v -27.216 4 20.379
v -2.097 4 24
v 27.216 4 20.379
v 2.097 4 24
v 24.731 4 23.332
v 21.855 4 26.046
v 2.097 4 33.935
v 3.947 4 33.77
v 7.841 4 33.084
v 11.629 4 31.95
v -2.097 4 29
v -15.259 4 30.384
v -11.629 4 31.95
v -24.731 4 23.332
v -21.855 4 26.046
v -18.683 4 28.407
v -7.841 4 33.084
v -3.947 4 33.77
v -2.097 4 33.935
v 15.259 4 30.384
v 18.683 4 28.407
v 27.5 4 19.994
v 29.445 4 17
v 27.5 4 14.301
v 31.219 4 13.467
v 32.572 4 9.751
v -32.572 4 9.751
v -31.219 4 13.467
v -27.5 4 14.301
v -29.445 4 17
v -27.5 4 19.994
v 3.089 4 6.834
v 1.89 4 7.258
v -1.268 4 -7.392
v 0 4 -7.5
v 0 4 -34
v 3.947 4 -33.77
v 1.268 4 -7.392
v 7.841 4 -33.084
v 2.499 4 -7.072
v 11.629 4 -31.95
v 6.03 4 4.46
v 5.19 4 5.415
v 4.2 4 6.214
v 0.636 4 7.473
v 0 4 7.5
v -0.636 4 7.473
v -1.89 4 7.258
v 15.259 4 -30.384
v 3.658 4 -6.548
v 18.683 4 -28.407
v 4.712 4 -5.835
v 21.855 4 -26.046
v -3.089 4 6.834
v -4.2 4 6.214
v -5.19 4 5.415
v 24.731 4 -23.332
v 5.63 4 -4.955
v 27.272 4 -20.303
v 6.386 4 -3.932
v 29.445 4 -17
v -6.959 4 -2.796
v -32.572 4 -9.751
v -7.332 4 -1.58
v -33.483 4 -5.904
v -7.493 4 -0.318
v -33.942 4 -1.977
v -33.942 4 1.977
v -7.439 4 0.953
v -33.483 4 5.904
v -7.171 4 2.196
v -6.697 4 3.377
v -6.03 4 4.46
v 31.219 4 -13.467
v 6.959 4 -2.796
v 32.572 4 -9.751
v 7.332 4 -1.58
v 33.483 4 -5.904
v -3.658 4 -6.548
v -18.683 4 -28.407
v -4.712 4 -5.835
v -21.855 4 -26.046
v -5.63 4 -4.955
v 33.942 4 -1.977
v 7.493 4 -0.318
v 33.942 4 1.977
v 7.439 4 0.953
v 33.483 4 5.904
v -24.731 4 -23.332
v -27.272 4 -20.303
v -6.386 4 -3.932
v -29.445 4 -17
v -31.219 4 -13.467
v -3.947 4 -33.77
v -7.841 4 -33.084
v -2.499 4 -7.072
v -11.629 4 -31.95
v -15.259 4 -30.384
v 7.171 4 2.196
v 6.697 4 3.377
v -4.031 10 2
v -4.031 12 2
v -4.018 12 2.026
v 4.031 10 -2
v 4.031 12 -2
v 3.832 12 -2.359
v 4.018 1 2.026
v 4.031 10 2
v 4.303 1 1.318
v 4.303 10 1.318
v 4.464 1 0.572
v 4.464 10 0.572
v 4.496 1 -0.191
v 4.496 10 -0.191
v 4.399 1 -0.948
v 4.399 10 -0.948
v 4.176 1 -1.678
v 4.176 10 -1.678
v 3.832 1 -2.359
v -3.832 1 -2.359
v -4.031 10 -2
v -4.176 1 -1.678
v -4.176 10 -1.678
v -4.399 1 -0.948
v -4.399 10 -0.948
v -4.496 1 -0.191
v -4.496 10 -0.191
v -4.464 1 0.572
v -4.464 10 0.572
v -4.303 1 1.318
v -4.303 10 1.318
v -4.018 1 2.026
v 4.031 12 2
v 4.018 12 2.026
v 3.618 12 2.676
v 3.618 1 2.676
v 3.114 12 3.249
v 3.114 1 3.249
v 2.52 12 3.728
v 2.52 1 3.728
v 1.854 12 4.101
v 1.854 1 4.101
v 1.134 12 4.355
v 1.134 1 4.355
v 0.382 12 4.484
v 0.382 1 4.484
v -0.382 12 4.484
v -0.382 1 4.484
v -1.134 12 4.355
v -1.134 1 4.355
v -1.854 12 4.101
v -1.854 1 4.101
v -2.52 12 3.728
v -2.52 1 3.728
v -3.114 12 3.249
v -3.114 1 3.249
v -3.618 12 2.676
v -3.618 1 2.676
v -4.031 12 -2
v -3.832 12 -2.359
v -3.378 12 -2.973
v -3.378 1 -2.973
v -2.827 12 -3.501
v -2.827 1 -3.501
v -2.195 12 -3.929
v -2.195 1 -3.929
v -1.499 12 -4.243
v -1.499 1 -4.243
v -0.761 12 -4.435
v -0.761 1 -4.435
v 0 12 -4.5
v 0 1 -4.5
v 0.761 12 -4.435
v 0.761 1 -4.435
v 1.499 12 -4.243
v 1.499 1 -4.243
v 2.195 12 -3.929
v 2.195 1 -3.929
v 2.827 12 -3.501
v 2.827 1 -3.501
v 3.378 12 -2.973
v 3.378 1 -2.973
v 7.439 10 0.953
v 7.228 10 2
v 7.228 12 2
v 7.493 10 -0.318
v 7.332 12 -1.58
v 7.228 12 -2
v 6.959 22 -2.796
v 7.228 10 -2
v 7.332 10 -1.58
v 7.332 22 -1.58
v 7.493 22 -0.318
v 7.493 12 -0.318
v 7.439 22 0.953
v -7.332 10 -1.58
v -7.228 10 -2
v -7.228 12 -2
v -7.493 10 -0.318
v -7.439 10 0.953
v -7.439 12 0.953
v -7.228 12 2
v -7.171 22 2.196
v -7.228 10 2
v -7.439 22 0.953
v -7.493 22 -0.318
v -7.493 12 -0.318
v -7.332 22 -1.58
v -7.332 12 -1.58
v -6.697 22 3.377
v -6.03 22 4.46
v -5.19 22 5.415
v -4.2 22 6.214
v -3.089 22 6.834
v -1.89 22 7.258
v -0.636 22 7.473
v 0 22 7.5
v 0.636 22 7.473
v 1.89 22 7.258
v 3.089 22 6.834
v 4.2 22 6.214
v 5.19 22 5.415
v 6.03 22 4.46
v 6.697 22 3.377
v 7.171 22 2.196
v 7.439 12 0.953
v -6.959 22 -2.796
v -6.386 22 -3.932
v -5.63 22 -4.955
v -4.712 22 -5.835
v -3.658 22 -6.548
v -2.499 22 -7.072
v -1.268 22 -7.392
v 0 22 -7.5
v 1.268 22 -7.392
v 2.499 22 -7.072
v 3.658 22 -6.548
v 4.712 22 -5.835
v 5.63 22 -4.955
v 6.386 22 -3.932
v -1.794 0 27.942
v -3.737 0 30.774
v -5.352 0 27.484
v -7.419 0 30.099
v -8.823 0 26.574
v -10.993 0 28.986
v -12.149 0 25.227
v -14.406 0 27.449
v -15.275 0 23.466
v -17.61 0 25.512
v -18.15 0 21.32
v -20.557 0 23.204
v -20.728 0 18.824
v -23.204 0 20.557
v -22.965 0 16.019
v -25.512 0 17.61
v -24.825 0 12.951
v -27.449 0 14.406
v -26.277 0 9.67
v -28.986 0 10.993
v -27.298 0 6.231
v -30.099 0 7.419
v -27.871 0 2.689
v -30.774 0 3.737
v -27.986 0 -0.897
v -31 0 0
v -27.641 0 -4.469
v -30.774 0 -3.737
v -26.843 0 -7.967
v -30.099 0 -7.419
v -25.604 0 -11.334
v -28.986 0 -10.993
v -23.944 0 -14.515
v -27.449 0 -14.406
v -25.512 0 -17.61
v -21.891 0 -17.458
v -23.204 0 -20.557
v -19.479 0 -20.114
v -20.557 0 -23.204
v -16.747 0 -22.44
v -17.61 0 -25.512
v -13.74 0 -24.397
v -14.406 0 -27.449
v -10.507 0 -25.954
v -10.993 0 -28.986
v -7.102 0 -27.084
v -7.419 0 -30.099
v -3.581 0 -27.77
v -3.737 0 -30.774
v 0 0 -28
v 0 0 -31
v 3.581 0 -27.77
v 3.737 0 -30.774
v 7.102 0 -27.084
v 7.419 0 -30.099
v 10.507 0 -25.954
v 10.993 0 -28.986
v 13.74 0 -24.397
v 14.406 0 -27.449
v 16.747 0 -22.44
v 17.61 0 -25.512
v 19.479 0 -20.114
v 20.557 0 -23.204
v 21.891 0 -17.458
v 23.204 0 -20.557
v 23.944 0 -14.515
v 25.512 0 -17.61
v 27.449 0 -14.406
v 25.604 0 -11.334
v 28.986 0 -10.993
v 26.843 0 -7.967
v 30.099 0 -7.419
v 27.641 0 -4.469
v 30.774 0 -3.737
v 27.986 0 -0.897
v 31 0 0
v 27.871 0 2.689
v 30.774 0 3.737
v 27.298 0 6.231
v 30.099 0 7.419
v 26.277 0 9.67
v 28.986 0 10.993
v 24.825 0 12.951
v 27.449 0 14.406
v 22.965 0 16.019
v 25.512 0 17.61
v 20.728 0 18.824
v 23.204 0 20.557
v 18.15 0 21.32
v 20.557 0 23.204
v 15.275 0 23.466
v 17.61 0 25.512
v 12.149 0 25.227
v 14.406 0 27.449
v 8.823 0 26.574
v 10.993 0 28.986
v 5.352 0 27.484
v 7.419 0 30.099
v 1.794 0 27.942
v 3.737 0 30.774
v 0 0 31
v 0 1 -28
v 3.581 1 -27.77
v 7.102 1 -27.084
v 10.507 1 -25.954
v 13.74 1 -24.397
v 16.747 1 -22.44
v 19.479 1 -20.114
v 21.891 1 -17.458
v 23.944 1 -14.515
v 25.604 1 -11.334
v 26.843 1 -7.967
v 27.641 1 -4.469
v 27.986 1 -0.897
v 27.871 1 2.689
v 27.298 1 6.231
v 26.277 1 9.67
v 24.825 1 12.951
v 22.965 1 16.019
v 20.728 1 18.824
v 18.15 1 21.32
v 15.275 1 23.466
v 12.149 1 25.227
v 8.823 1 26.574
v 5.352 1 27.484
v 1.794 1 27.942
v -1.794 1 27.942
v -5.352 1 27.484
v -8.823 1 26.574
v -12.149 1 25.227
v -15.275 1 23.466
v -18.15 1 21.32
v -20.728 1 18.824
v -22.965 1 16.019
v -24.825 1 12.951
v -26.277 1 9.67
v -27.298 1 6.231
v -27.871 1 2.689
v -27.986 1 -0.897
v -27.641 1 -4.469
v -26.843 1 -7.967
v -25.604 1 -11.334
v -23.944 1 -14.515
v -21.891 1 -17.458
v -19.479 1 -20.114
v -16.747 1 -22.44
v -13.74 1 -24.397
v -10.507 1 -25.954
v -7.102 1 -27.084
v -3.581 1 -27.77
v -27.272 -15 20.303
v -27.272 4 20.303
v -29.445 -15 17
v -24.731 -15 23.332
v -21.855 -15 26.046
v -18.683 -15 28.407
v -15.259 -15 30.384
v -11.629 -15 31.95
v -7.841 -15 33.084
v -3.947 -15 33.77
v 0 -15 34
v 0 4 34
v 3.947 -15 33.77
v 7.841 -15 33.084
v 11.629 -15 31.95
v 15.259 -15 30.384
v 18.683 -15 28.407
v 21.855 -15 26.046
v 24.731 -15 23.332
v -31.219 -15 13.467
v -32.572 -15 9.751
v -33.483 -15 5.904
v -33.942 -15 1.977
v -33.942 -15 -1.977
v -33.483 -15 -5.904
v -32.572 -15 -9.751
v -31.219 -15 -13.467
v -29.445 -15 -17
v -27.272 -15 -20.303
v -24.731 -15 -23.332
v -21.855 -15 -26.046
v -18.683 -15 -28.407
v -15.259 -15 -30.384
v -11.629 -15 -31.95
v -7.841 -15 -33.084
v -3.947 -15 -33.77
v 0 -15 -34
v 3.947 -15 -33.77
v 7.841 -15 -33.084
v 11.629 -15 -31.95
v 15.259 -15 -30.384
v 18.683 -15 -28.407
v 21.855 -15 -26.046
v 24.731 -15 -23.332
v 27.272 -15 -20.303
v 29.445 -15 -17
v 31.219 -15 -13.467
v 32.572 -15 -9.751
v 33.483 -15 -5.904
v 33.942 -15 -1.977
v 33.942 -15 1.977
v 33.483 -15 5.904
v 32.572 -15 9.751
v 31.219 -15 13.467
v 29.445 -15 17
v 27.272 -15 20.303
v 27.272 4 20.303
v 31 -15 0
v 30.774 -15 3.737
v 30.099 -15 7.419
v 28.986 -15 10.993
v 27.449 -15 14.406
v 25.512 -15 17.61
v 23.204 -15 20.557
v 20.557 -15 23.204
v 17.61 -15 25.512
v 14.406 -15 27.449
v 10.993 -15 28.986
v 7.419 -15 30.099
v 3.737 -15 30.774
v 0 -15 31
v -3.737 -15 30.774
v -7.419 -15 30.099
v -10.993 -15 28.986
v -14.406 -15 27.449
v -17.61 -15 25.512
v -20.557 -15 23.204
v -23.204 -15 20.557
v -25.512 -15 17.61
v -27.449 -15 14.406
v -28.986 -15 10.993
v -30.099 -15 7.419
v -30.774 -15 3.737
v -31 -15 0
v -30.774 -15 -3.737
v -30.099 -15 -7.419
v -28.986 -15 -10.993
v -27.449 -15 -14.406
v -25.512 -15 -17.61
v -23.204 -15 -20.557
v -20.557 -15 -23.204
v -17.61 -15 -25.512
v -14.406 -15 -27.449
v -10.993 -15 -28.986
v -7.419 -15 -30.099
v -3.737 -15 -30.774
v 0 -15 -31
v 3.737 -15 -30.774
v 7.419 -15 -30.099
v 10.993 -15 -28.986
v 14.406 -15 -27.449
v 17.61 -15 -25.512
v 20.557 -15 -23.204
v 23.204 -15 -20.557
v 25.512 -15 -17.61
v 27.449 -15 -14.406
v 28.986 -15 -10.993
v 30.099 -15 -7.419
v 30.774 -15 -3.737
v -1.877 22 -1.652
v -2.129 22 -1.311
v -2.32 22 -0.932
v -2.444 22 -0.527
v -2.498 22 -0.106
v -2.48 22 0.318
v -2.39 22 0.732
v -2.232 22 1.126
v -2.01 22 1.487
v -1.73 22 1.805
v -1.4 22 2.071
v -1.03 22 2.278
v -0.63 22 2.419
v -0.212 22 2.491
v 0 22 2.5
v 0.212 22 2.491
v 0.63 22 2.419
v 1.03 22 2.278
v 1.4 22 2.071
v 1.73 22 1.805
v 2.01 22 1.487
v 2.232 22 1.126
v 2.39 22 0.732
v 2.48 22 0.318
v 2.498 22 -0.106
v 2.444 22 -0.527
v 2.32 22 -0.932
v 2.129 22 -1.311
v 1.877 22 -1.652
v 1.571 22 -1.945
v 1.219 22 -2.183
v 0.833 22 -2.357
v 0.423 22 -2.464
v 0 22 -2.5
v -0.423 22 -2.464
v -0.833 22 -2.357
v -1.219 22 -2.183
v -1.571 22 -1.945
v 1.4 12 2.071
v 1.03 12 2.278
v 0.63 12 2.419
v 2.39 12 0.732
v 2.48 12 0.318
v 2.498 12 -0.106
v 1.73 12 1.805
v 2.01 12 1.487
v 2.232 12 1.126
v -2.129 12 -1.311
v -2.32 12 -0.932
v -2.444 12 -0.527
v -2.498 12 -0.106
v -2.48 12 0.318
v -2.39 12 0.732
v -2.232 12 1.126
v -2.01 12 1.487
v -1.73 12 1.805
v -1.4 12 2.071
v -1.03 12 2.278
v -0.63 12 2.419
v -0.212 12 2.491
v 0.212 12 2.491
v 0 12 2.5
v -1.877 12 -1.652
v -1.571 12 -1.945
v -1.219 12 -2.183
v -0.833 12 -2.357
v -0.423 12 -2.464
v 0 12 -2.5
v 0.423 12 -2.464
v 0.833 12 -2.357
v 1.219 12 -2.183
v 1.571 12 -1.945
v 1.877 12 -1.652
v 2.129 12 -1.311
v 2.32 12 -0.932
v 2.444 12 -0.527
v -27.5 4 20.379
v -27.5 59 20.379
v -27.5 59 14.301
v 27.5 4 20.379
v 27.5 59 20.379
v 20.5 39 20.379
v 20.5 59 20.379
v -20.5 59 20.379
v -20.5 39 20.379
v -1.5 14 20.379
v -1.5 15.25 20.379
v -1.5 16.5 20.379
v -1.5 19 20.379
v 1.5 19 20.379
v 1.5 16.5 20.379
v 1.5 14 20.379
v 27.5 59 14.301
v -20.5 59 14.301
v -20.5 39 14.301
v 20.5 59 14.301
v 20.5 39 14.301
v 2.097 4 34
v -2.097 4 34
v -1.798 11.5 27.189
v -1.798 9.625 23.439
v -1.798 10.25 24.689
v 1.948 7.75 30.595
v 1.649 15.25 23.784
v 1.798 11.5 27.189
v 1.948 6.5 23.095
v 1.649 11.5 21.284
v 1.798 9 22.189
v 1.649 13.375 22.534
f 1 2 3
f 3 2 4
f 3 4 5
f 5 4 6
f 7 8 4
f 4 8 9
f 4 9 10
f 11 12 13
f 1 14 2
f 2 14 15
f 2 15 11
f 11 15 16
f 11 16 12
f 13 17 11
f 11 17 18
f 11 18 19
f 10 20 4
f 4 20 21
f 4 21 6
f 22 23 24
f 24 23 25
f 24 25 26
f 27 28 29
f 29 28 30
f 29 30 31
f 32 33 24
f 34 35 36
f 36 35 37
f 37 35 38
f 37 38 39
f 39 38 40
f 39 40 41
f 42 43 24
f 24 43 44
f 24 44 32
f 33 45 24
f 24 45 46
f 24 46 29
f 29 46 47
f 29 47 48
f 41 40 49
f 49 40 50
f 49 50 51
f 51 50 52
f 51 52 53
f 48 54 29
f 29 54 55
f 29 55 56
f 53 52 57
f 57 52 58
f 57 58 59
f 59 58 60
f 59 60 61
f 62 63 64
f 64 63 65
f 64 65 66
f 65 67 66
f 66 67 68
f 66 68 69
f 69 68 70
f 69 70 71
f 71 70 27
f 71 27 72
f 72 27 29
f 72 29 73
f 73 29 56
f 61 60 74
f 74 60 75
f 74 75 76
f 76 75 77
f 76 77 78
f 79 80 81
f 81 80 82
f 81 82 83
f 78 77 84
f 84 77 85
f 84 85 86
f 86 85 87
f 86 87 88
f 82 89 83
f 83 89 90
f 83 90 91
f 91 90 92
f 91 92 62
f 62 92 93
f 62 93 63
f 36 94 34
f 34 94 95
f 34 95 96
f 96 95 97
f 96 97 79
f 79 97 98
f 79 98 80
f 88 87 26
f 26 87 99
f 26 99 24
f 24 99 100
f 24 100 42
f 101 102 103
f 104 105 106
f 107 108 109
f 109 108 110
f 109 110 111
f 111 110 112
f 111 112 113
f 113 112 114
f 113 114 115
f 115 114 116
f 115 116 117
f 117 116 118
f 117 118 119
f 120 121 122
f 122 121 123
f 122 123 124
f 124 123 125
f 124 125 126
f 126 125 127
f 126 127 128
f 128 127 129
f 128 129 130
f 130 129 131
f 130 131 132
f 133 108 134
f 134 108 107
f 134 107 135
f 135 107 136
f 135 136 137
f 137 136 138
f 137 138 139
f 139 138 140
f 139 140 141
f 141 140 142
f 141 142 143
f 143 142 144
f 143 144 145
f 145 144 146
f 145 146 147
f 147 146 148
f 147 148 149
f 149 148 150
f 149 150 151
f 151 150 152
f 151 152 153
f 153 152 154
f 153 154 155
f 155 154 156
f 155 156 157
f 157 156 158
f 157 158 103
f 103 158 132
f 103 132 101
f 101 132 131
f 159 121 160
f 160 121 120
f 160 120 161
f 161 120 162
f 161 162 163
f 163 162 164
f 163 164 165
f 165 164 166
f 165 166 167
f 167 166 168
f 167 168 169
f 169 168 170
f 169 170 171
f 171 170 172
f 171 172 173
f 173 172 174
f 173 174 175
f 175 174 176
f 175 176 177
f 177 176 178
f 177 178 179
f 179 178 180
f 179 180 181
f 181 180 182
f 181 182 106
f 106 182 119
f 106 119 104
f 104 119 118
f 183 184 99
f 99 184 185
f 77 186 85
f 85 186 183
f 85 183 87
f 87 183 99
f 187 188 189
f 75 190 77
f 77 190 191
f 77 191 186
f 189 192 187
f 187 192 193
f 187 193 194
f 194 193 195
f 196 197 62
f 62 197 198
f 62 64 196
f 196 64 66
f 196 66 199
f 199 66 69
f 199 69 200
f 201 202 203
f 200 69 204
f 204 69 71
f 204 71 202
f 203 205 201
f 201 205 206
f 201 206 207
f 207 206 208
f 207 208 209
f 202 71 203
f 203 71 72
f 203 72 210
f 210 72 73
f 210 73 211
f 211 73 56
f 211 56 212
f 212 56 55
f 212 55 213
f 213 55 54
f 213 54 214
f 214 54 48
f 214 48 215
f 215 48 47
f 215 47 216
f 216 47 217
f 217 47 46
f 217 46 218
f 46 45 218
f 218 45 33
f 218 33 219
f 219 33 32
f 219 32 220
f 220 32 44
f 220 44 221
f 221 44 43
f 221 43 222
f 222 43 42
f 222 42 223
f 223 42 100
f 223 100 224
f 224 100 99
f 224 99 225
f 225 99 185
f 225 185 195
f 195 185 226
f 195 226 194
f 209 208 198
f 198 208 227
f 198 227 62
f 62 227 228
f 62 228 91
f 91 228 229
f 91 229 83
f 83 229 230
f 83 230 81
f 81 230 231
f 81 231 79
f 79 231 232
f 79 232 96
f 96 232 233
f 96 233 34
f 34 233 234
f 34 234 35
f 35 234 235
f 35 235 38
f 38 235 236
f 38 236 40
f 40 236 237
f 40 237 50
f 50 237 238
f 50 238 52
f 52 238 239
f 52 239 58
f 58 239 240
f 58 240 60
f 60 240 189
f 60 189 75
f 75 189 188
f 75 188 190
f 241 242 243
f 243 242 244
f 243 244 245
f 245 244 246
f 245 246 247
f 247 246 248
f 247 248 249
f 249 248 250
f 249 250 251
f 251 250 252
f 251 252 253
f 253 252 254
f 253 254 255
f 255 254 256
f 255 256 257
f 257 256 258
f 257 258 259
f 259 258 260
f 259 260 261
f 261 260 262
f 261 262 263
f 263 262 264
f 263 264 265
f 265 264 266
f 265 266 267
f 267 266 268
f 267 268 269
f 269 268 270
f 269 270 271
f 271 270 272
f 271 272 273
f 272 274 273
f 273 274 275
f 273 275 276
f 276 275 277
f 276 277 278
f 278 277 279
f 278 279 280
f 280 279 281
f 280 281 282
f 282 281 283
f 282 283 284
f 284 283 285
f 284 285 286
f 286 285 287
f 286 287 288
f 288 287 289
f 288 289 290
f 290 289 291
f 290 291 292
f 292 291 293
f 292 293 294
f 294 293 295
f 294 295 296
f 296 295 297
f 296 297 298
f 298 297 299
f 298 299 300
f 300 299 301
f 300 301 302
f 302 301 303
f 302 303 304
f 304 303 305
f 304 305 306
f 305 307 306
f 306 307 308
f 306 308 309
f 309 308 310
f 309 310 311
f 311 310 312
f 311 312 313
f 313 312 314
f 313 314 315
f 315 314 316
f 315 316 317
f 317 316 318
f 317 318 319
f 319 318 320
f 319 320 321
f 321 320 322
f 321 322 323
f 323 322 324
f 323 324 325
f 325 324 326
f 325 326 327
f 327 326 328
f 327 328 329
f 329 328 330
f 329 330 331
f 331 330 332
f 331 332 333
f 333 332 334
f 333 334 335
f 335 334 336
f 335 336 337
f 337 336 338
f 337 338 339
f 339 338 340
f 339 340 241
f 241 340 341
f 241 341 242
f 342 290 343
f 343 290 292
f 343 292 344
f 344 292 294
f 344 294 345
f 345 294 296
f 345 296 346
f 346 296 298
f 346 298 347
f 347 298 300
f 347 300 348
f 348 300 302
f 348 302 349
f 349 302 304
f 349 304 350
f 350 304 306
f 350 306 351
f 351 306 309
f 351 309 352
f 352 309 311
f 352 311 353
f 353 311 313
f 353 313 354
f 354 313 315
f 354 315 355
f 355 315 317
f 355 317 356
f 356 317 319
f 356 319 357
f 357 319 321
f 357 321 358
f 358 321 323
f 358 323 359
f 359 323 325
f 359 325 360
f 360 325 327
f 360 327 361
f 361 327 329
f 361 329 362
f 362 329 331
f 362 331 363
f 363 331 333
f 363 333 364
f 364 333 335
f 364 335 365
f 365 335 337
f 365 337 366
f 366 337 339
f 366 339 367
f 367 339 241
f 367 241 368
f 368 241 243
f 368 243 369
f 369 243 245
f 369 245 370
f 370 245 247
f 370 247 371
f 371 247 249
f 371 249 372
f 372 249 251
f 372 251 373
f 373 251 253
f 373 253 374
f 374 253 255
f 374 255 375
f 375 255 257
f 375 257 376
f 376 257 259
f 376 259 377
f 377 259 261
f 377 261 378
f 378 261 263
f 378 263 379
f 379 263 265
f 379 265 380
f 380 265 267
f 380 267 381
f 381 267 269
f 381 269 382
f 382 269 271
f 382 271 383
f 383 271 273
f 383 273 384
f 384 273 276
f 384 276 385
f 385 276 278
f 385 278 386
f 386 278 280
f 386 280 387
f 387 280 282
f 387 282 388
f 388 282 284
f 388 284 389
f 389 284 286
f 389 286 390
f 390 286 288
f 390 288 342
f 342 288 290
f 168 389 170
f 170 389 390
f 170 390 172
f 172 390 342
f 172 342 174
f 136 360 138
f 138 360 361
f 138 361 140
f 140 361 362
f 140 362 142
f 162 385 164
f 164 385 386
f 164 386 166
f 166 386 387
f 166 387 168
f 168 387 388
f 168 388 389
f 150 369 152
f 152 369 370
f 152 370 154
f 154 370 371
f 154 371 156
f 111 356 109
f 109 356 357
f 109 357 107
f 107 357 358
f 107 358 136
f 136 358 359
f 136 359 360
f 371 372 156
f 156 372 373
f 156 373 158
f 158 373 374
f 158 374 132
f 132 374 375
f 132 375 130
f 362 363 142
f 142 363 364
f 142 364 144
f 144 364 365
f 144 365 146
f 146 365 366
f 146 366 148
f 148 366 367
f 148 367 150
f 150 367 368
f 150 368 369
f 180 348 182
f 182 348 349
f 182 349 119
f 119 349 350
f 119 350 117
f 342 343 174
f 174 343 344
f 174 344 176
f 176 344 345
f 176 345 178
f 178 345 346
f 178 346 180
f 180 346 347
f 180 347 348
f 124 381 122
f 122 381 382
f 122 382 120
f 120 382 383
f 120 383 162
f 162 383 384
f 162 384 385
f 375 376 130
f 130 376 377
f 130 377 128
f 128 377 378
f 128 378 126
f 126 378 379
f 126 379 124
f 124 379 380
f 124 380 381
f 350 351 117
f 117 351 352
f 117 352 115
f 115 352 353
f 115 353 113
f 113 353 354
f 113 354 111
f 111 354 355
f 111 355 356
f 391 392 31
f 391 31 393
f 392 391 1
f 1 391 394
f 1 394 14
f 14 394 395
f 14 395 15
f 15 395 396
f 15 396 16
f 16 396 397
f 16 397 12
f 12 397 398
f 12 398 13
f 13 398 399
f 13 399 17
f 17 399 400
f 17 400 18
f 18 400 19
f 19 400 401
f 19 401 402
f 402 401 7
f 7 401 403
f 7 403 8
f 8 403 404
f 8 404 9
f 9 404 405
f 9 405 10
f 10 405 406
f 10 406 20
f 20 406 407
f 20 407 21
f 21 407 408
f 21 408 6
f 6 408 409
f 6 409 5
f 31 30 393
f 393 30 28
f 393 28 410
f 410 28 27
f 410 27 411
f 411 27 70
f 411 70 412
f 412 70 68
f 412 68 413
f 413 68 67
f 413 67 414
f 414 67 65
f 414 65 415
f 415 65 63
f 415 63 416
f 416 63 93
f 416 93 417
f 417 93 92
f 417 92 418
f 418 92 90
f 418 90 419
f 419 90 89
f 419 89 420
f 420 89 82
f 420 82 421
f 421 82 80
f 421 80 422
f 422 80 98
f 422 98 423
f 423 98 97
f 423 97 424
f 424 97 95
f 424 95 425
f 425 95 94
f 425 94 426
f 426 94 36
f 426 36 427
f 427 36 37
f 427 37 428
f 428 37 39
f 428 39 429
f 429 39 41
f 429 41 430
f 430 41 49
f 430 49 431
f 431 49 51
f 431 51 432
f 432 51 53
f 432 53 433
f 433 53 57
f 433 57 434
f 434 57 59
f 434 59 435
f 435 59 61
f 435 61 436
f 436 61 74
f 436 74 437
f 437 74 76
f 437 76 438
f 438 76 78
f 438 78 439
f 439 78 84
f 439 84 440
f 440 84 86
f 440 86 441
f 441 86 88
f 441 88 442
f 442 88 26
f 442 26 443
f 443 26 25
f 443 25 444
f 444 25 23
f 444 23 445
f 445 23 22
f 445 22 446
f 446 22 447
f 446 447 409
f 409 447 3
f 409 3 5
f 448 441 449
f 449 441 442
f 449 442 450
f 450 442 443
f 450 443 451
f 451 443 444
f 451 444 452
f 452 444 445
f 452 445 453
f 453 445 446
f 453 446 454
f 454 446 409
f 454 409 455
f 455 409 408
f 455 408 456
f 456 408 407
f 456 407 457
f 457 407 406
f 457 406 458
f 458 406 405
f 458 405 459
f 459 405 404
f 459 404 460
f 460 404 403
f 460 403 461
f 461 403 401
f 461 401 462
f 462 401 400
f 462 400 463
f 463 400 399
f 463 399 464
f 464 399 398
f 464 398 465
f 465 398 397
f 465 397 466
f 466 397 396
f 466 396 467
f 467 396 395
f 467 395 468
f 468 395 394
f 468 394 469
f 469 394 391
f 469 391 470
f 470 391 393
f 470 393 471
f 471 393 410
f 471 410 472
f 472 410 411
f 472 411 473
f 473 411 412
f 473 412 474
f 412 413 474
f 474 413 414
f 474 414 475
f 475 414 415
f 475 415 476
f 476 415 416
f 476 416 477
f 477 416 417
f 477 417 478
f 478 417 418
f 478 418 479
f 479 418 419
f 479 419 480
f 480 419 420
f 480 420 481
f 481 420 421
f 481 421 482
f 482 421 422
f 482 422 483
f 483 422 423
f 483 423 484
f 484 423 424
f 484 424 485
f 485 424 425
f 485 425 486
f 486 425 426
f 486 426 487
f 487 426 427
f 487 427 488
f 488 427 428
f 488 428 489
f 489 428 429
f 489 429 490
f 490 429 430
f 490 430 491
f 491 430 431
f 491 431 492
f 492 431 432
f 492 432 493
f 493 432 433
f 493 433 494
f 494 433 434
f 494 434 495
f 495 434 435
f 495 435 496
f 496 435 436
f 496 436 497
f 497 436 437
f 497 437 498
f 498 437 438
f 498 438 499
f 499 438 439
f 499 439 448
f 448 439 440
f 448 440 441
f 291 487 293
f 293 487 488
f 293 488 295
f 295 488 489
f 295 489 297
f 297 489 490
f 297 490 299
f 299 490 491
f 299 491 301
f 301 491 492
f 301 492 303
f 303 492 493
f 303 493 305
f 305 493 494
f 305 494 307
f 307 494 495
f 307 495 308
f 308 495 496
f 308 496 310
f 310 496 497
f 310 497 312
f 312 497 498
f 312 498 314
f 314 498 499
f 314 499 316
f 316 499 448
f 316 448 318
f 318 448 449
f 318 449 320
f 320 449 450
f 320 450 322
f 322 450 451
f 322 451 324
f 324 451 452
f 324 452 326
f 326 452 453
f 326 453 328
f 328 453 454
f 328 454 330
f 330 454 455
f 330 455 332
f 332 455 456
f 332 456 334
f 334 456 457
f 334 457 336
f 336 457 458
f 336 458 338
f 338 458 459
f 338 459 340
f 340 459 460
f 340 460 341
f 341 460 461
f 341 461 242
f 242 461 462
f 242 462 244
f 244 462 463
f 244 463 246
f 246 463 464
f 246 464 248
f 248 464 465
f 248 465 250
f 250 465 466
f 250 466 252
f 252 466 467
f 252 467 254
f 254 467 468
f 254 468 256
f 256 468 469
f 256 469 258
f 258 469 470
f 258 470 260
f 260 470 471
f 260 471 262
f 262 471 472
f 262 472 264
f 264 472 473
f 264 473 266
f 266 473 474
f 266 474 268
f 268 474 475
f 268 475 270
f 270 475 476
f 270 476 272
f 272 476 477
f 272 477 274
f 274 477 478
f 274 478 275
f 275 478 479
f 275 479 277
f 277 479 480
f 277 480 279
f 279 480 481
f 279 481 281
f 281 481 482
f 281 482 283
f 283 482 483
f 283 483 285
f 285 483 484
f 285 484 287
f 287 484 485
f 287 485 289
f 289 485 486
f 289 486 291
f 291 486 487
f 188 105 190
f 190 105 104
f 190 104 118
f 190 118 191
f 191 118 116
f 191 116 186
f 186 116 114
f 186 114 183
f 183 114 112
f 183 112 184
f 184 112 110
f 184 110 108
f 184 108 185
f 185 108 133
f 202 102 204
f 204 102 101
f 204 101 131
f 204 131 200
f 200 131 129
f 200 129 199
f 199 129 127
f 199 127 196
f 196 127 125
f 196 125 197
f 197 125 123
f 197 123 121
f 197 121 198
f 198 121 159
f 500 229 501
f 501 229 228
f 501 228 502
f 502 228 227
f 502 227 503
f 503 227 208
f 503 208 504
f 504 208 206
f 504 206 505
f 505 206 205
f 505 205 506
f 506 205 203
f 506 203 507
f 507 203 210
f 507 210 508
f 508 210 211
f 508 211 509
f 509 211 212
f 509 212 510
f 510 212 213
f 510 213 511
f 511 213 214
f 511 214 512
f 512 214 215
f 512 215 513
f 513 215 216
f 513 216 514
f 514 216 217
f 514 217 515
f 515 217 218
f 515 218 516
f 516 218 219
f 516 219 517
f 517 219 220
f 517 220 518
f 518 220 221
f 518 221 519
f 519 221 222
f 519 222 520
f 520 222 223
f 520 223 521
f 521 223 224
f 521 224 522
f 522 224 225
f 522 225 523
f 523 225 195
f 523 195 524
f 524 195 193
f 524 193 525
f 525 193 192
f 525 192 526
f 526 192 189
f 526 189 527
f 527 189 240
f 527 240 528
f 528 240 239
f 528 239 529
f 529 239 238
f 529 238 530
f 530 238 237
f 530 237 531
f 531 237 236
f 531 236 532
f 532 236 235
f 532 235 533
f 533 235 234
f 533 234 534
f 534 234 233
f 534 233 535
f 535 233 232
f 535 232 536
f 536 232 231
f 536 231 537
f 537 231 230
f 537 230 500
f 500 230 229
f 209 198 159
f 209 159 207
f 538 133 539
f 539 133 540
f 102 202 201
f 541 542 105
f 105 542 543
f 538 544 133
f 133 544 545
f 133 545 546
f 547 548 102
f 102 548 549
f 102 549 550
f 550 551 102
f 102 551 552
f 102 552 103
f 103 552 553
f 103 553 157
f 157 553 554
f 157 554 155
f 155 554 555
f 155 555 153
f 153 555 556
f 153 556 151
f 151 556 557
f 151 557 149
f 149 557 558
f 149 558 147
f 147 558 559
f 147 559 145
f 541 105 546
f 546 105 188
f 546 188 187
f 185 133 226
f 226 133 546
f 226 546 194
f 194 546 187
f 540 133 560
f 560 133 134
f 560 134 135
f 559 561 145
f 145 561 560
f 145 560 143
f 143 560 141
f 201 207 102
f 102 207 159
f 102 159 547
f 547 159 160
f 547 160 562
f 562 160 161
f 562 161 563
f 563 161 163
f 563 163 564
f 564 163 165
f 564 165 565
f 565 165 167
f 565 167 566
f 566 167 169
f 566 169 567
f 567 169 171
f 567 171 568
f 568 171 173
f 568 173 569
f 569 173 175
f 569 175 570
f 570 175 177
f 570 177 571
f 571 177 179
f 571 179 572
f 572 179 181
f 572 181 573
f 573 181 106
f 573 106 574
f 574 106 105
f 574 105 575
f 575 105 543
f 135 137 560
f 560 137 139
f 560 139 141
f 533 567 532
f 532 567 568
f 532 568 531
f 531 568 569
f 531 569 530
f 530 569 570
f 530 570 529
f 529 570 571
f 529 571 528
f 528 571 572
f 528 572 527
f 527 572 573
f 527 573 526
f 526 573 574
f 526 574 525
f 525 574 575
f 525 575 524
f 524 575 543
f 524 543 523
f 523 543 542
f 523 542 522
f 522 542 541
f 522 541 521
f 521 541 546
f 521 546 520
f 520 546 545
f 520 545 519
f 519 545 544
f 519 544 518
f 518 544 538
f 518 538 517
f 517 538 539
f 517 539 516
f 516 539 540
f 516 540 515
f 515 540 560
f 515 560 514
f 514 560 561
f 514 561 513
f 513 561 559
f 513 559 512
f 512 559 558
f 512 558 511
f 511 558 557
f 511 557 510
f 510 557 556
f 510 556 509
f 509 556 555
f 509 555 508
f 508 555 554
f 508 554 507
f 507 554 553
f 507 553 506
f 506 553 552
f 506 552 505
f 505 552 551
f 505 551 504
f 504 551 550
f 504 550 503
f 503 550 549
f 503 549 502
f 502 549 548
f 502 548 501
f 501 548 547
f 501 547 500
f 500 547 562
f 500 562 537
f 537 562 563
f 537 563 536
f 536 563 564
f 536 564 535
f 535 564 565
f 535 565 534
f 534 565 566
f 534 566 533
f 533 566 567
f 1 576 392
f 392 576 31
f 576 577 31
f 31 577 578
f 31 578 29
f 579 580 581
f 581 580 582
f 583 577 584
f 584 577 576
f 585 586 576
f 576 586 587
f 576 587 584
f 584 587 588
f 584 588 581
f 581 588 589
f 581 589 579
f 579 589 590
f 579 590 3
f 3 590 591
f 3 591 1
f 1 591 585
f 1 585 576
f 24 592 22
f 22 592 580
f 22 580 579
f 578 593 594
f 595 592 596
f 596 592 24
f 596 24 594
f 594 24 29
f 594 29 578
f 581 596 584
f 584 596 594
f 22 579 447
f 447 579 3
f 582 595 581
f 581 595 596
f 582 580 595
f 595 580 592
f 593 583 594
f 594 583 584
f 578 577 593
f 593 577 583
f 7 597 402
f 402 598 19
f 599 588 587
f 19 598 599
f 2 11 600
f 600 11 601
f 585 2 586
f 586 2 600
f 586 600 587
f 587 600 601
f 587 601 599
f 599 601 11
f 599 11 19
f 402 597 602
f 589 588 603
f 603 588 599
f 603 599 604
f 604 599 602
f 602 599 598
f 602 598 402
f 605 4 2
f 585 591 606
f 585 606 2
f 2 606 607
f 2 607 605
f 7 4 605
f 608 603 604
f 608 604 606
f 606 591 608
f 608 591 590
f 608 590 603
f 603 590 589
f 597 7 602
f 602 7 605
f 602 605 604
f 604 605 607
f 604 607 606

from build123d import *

# Parameters (mm, degrees)
SKETCH10_R              = 7.5
SKETCH10_R_2            = 4.5
BOSS_EXTRUDE2_DEPTH     = 8
CUT_EXTRUDE2_DEPTH      = 19
CUT_EXTRUDE2_DEPTH_BACK = 12
SKETCH11_W              = 4
SKETCH11_H              = 2
SKETCH13_R              = 7.5
SKETCH13_R_2            = 2.5
BOSS_EXTRUDE3_DEPTH     = 10
SKETCH15_W              = 55
SKETCH15_H              = 6.077899871
BOSS_EXTRUDE4_DEPTH     = 35
SKETCH16_W              = 7
SKETCH16_H              = 6.077899871
BOSS_EXTRUDE5_DEPTH     = 20


with BuildPart() as part:
    # Sketch2 → Revolve1 (revolve)
    with BuildSketch(Plane(origin=(0, 0, 0), x_dir=(0, 0, -1), z_dir=(1, 0, 0))):
        Polygon((31, 0), (31, -15), (34, -15), (34, 4), (31, 4), (4.5, 4), (4.5, 1), (28, 1), (28, 0), align=None)
    revolve(axis=Axis((0, 0, 0), (0, 1, 0)))

    # Sketch10 → Boss-Extrude2 (add)
    with BuildSketch(Plane(origin=(0, 4, 0), x_dir=(1, 0, 0), z_dir=(0, 1, 0))):
        with Locations(Location((0, 0, 0), (0, 0, 270))):
            Circle(SKETCH10_R)
        with Locations(Location((0, 0, 0), (0, 0, 90))):
            Circle(SKETCH10_R_2, mode=Mode.SUBTRACT)
    extrude(amount=BOSS_EXTRUDE2_DEPTH)

    # Sketch11 → Cut-Extrude2 (cut, two sides: drawn at the far end of the back side and taken through both)
    with BuildSketch(Plane(origin=(0, 0, 0), x_dir=(0, 0, -1), z_dir=(1, 0, 0)).offset(-CUT_EXTRUDE2_DEPTH_BACK)):
        with Locations((0, 11)):
            Rectangle(SKETCH11_W, SKETCH11_H)
    extrude(amount=CUT_EXTRUDE2_DEPTH + CUT_EXTRUDE2_DEPTH_BACK, mode=Mode.SUBTRACT)

    # Sketch13 → Boss-Extrude3 (add)
    with BuildSketch(Plane(origin=(0, 12, 0), x_dir=(1, 0, 0), z_dir=(0, 1, 0))):
        with Locations(Location((0, 0, 0), (0, 0, 270))):
            Circle(SKETCH13_R)
        with Locations(Location((0, 0, 0), (0, 0, 270))):
            Circle(SKETCH13_R_2, mode=Mode.SUBTRACT)
    extrude(amount=BOSS_EXTRUDE3_DEPTH)

    # Sketch15 → Boss-Extrude4 (add)
    with BuildSketch(Plane(origin=(0, 4, 0), x_dir=(1, 0, 0), z_dir=(0, 1, 0))):
        with Locations((0, -17.339890807)):
            Rectangle(SKETCH15_W, SKETCH15_H)
    extrude(amount=BOSS_EXTRUDE4_DEPTH)

    # Sketch16 → Boss-Extrude5 (add)
    with BuildSketch(Plane(origin=(0, 39, 0), x_dir=(1, 0, 0), z_dir=(0, 1, 0))):
        with Locations((24, -17.339890807)):
            Rectangle(SKETCH16_W, SKETCH16_H)
        with Locations((-24, -17.339890807)):
            Rectangle(SKETCH16_W, SKETCH16_H)
    extrude(amount=BOSS_EXTRUDE5_DEPTH)

    # Loft1: read off the stored shape, not the designer's step
    # Loft1: loft between two sections, ruled curve by curve
    loft1_from = [
        Edge.make_bspline([(-2.096925142, 4, 24), (-2.096925142, 4, 25.666666667), (-2.096925142, 4, 27.333333333), (-2.096925142, 4, 30.666666667), (-2.096925142, 4, 32.333333333), (-2.096925142, 4, 34)], [0, 0, 0, 0, 0.5, 0.5, 1, 1, 1, 1], 3),
        Edge.make_bspline([(2.096925142, 4, 34), (2.096925142, 4, 32.333333333), (2.096925142, 4, 30.666666667), (2.096925142, 4, 27.333333333), (2.096925142, 4, 25.666666667), (2.096925142, 4, 24)], [0, 0, 0, 0, 0.5, 0.5, 1, 1, 1, 1], 3),
        Edge.make_line((-2.096925142, 4, 24), (2.096925142, 4, 24)),
        Edge.make_line((2.096925142, 4, 34), (-2.096925142, 4, 34)),
    ]
    loft1_to = [
        Edge.make_bspline([(-1.5, 14, 20.378840742), (-1.5, 14.833333333, 20.378840742), (-1.5, 15.666666667, 20.378840742), (-1.5, 17.333333333, 20.378840742), (-1.5, 18.166666667, 20.378840742), (-1.5, 19, 20.378840742)], [0, 0, 0, 0, 0.5, 0.5, 1, 1, 1, 1], 3),
        Edge.make_bspline([(1.5, 19, 20.378840742), (1.5, 18.166666667, 20.378840742), (1.5, 17.333333333, 20.378840742), (1.5, 15.666666667, 20.378840742), (1.5, 14.833333333, 20.378840742), (1.5, 14, 20.378840742)], [0, 0, 0, 0, 0.5, 0.5, 1, 1, 1, 1], 3),
        Edge.make_line((-1.5, 14, 20.378840742), (1.5, 14, 20.378840742)),
        Edge.make_line((1.5, 19, 20.378840742), (-1.5, 19, 20.378840742)),
    ]
    loft1 = Solid(Shell([*[Face.make_surface_from_curves(loft1_from[k], loft1_to[k]) for k in range(4)], Face(Wire(loft1_from)), Face(Wire(loft1_to))]))
    add(loft1)


solid = part.part
